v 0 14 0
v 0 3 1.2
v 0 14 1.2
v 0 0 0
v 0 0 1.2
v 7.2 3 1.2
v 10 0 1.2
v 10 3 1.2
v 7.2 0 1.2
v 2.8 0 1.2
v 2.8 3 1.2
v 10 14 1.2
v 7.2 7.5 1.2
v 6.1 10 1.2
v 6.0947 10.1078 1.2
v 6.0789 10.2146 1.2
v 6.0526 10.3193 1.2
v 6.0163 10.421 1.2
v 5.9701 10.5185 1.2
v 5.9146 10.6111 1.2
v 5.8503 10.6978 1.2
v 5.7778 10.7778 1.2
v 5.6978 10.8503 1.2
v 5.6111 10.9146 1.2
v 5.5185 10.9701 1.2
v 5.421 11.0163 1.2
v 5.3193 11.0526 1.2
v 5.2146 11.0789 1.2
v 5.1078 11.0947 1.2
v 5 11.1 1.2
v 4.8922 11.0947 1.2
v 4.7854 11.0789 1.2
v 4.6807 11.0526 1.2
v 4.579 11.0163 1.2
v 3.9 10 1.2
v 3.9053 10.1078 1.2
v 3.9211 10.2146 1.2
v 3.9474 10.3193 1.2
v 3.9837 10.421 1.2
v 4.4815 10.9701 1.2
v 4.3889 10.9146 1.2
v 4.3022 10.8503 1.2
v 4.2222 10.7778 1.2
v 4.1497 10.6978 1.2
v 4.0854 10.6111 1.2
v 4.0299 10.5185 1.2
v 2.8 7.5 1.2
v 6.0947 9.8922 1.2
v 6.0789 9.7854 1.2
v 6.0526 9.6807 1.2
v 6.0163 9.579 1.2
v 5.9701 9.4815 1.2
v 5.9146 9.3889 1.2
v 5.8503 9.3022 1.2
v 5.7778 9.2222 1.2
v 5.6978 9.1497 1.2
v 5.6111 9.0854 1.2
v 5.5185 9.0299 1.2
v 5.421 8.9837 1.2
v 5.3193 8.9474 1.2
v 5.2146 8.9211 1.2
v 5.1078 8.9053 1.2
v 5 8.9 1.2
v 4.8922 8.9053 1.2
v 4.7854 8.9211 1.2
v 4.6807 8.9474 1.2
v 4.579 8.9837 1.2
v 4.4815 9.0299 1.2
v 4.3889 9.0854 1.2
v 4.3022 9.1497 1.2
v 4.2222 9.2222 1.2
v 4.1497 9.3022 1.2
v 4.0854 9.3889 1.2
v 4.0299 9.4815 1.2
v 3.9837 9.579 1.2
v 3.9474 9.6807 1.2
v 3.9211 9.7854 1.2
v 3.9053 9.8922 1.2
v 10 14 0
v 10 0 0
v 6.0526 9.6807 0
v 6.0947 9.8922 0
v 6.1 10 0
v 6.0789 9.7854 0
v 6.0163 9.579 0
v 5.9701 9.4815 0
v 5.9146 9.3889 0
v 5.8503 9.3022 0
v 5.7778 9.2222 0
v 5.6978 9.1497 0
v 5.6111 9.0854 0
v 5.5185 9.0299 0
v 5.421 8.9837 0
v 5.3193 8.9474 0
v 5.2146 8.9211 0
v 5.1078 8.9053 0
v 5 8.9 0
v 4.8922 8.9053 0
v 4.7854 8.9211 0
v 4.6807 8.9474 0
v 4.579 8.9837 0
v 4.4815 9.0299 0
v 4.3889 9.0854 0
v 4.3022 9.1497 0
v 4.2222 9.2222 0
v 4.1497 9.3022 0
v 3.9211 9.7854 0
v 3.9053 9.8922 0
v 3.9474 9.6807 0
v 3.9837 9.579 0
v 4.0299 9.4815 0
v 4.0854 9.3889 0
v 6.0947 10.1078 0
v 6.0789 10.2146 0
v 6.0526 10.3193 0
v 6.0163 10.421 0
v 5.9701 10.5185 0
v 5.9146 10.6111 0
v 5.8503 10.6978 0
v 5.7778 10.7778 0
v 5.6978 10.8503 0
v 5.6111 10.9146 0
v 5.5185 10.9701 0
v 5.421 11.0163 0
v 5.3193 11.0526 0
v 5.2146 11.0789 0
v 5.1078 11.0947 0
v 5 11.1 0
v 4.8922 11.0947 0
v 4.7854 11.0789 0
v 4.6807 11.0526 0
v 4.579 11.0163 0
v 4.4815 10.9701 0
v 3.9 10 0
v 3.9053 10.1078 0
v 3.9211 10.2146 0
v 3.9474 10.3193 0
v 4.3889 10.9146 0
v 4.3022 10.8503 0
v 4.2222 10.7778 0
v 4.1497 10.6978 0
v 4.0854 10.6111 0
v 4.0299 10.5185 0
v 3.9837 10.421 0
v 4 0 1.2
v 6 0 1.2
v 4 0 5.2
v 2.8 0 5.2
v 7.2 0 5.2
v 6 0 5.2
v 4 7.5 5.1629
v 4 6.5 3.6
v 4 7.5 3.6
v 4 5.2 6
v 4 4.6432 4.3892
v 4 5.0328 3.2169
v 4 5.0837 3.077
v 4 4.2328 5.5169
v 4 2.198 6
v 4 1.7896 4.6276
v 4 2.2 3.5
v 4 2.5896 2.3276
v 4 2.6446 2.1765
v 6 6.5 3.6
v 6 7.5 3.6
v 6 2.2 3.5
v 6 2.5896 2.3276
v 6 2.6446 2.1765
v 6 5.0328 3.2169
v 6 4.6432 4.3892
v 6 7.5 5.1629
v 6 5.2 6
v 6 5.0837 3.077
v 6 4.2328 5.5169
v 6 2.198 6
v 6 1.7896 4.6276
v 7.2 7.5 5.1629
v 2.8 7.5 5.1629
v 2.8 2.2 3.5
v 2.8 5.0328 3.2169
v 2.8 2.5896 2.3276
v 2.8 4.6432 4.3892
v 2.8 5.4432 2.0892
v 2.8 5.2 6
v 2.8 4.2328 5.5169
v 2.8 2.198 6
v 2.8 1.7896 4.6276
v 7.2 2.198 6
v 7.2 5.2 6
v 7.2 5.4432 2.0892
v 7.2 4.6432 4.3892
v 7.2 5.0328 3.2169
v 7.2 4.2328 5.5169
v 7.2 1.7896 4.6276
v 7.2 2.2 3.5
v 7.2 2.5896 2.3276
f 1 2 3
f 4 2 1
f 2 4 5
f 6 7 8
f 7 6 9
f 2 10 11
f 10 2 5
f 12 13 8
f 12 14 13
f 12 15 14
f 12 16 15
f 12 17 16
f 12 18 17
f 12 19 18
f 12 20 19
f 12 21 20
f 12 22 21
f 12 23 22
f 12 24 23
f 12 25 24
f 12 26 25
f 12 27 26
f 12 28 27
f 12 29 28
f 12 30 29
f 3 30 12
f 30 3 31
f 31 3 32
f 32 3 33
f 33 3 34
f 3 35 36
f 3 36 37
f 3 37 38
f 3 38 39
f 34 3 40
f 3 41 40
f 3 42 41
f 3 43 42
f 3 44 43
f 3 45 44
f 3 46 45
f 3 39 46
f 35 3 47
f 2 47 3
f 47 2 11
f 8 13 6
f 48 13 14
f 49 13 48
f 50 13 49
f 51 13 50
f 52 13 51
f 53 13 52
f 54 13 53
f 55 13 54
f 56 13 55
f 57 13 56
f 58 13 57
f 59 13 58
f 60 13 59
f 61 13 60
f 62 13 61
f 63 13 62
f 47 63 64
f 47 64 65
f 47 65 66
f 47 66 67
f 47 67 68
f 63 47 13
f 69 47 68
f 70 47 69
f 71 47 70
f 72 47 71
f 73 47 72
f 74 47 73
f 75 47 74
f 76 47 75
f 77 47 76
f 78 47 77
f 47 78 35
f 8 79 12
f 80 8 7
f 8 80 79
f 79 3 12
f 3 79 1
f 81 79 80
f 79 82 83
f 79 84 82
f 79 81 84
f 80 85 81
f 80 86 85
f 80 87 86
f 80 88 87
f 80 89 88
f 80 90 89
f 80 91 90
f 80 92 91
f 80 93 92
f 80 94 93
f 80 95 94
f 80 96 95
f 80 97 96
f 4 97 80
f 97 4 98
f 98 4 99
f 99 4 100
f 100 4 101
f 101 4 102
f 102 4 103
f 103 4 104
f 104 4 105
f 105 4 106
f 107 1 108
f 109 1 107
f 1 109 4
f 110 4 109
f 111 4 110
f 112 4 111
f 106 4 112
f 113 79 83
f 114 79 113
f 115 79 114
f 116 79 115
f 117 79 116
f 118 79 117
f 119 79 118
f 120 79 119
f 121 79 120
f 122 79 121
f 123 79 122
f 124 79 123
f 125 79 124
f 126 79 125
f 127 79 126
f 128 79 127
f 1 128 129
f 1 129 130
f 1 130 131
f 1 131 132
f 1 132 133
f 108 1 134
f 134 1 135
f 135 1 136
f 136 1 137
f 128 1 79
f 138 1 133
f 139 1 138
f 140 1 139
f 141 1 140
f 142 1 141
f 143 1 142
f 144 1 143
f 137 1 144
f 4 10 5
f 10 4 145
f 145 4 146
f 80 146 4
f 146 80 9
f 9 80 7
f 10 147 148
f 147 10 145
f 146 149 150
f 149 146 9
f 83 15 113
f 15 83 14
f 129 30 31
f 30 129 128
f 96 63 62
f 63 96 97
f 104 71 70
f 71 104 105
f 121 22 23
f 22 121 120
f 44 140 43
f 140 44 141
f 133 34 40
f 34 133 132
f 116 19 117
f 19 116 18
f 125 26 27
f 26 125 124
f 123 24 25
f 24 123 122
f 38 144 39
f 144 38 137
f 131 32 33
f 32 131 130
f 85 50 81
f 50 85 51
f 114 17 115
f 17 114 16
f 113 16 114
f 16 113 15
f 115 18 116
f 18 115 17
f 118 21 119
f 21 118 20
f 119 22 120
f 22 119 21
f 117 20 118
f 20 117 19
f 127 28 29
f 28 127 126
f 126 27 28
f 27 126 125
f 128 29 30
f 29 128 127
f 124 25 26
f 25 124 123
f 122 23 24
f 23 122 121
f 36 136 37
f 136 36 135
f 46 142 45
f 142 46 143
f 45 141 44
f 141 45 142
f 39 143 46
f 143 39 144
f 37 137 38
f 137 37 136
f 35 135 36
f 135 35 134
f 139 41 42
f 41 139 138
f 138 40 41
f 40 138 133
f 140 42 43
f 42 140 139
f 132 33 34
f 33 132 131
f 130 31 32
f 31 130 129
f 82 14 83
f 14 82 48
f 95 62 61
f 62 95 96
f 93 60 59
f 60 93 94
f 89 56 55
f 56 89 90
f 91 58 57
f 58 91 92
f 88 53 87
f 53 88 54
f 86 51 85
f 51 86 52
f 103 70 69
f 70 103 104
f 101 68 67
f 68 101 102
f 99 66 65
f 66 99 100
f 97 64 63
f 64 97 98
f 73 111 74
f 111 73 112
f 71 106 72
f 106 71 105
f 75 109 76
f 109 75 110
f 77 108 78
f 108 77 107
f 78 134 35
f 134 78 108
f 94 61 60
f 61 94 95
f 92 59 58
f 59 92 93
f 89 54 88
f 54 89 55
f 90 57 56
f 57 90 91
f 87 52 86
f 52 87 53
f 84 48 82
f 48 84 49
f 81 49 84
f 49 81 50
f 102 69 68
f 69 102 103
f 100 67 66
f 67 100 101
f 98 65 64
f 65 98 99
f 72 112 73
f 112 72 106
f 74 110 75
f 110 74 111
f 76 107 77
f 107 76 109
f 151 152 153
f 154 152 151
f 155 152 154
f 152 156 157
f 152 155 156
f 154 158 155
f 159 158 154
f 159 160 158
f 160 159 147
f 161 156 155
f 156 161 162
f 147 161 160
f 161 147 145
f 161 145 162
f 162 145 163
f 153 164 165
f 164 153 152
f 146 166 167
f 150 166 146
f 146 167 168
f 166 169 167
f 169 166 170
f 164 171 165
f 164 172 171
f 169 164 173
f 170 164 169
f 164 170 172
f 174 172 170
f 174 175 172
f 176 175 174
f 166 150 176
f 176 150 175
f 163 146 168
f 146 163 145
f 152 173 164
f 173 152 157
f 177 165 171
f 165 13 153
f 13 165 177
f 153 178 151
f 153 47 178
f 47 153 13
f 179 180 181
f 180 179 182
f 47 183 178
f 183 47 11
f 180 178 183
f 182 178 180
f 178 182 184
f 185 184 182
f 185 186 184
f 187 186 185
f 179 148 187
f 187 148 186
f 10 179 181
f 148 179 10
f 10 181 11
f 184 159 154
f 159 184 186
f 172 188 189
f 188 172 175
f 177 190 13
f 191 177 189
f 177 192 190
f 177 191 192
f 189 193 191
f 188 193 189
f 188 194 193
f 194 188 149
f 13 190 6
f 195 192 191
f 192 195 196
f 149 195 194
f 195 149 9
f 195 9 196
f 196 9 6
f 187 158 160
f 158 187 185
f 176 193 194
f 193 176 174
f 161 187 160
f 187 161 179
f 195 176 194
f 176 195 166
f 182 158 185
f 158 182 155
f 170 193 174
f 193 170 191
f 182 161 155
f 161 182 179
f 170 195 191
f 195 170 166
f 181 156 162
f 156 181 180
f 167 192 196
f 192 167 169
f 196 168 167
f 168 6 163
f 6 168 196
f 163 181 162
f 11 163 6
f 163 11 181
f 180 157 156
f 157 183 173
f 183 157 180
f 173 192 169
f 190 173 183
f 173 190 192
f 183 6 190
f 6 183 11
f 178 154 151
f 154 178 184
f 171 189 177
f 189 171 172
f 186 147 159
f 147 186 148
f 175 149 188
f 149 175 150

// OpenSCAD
$fn = 64;

difference() {
    union() {
        difference() {
            cube([10, 14, 1.2]);
            translate([5, 10, -0.1]) cylinder(d = 2.2, h = 1.4);
        }
        hull() {
            translate([4, 0.6, 0]) rotate([20, 0, 0]) cube([2, 7, 1.2]);
            translate([4, 0, 0]) cube([2, 7.5, 1.2]);
            translate([4, 6.5, 0]) cube([2, 1, 3.6]);
        }
        translate([2.8, 0, 0]) cube([1.2, 7.5, 6]);
        translate([6, 0, 0]) cube([1.2, 7.5, 6]);
    }
    translate([0, 2.2, 3.5]) rotate([20, 0, 0]) cube([10, 2.6, 1.2]);
    translate([0, 3, 1.2]) rotate([20, 0, 0]) cube([10, 2.6, 1.2]);
    translate([0, 5.2, 6]) rotate([-20, 0, 0]) cube([10, 2.6, 1.2]);
    translate([0, 0, 5.2]) rotate([20, 0, 0]) cube([10, 2.6, 1.2]);
}
